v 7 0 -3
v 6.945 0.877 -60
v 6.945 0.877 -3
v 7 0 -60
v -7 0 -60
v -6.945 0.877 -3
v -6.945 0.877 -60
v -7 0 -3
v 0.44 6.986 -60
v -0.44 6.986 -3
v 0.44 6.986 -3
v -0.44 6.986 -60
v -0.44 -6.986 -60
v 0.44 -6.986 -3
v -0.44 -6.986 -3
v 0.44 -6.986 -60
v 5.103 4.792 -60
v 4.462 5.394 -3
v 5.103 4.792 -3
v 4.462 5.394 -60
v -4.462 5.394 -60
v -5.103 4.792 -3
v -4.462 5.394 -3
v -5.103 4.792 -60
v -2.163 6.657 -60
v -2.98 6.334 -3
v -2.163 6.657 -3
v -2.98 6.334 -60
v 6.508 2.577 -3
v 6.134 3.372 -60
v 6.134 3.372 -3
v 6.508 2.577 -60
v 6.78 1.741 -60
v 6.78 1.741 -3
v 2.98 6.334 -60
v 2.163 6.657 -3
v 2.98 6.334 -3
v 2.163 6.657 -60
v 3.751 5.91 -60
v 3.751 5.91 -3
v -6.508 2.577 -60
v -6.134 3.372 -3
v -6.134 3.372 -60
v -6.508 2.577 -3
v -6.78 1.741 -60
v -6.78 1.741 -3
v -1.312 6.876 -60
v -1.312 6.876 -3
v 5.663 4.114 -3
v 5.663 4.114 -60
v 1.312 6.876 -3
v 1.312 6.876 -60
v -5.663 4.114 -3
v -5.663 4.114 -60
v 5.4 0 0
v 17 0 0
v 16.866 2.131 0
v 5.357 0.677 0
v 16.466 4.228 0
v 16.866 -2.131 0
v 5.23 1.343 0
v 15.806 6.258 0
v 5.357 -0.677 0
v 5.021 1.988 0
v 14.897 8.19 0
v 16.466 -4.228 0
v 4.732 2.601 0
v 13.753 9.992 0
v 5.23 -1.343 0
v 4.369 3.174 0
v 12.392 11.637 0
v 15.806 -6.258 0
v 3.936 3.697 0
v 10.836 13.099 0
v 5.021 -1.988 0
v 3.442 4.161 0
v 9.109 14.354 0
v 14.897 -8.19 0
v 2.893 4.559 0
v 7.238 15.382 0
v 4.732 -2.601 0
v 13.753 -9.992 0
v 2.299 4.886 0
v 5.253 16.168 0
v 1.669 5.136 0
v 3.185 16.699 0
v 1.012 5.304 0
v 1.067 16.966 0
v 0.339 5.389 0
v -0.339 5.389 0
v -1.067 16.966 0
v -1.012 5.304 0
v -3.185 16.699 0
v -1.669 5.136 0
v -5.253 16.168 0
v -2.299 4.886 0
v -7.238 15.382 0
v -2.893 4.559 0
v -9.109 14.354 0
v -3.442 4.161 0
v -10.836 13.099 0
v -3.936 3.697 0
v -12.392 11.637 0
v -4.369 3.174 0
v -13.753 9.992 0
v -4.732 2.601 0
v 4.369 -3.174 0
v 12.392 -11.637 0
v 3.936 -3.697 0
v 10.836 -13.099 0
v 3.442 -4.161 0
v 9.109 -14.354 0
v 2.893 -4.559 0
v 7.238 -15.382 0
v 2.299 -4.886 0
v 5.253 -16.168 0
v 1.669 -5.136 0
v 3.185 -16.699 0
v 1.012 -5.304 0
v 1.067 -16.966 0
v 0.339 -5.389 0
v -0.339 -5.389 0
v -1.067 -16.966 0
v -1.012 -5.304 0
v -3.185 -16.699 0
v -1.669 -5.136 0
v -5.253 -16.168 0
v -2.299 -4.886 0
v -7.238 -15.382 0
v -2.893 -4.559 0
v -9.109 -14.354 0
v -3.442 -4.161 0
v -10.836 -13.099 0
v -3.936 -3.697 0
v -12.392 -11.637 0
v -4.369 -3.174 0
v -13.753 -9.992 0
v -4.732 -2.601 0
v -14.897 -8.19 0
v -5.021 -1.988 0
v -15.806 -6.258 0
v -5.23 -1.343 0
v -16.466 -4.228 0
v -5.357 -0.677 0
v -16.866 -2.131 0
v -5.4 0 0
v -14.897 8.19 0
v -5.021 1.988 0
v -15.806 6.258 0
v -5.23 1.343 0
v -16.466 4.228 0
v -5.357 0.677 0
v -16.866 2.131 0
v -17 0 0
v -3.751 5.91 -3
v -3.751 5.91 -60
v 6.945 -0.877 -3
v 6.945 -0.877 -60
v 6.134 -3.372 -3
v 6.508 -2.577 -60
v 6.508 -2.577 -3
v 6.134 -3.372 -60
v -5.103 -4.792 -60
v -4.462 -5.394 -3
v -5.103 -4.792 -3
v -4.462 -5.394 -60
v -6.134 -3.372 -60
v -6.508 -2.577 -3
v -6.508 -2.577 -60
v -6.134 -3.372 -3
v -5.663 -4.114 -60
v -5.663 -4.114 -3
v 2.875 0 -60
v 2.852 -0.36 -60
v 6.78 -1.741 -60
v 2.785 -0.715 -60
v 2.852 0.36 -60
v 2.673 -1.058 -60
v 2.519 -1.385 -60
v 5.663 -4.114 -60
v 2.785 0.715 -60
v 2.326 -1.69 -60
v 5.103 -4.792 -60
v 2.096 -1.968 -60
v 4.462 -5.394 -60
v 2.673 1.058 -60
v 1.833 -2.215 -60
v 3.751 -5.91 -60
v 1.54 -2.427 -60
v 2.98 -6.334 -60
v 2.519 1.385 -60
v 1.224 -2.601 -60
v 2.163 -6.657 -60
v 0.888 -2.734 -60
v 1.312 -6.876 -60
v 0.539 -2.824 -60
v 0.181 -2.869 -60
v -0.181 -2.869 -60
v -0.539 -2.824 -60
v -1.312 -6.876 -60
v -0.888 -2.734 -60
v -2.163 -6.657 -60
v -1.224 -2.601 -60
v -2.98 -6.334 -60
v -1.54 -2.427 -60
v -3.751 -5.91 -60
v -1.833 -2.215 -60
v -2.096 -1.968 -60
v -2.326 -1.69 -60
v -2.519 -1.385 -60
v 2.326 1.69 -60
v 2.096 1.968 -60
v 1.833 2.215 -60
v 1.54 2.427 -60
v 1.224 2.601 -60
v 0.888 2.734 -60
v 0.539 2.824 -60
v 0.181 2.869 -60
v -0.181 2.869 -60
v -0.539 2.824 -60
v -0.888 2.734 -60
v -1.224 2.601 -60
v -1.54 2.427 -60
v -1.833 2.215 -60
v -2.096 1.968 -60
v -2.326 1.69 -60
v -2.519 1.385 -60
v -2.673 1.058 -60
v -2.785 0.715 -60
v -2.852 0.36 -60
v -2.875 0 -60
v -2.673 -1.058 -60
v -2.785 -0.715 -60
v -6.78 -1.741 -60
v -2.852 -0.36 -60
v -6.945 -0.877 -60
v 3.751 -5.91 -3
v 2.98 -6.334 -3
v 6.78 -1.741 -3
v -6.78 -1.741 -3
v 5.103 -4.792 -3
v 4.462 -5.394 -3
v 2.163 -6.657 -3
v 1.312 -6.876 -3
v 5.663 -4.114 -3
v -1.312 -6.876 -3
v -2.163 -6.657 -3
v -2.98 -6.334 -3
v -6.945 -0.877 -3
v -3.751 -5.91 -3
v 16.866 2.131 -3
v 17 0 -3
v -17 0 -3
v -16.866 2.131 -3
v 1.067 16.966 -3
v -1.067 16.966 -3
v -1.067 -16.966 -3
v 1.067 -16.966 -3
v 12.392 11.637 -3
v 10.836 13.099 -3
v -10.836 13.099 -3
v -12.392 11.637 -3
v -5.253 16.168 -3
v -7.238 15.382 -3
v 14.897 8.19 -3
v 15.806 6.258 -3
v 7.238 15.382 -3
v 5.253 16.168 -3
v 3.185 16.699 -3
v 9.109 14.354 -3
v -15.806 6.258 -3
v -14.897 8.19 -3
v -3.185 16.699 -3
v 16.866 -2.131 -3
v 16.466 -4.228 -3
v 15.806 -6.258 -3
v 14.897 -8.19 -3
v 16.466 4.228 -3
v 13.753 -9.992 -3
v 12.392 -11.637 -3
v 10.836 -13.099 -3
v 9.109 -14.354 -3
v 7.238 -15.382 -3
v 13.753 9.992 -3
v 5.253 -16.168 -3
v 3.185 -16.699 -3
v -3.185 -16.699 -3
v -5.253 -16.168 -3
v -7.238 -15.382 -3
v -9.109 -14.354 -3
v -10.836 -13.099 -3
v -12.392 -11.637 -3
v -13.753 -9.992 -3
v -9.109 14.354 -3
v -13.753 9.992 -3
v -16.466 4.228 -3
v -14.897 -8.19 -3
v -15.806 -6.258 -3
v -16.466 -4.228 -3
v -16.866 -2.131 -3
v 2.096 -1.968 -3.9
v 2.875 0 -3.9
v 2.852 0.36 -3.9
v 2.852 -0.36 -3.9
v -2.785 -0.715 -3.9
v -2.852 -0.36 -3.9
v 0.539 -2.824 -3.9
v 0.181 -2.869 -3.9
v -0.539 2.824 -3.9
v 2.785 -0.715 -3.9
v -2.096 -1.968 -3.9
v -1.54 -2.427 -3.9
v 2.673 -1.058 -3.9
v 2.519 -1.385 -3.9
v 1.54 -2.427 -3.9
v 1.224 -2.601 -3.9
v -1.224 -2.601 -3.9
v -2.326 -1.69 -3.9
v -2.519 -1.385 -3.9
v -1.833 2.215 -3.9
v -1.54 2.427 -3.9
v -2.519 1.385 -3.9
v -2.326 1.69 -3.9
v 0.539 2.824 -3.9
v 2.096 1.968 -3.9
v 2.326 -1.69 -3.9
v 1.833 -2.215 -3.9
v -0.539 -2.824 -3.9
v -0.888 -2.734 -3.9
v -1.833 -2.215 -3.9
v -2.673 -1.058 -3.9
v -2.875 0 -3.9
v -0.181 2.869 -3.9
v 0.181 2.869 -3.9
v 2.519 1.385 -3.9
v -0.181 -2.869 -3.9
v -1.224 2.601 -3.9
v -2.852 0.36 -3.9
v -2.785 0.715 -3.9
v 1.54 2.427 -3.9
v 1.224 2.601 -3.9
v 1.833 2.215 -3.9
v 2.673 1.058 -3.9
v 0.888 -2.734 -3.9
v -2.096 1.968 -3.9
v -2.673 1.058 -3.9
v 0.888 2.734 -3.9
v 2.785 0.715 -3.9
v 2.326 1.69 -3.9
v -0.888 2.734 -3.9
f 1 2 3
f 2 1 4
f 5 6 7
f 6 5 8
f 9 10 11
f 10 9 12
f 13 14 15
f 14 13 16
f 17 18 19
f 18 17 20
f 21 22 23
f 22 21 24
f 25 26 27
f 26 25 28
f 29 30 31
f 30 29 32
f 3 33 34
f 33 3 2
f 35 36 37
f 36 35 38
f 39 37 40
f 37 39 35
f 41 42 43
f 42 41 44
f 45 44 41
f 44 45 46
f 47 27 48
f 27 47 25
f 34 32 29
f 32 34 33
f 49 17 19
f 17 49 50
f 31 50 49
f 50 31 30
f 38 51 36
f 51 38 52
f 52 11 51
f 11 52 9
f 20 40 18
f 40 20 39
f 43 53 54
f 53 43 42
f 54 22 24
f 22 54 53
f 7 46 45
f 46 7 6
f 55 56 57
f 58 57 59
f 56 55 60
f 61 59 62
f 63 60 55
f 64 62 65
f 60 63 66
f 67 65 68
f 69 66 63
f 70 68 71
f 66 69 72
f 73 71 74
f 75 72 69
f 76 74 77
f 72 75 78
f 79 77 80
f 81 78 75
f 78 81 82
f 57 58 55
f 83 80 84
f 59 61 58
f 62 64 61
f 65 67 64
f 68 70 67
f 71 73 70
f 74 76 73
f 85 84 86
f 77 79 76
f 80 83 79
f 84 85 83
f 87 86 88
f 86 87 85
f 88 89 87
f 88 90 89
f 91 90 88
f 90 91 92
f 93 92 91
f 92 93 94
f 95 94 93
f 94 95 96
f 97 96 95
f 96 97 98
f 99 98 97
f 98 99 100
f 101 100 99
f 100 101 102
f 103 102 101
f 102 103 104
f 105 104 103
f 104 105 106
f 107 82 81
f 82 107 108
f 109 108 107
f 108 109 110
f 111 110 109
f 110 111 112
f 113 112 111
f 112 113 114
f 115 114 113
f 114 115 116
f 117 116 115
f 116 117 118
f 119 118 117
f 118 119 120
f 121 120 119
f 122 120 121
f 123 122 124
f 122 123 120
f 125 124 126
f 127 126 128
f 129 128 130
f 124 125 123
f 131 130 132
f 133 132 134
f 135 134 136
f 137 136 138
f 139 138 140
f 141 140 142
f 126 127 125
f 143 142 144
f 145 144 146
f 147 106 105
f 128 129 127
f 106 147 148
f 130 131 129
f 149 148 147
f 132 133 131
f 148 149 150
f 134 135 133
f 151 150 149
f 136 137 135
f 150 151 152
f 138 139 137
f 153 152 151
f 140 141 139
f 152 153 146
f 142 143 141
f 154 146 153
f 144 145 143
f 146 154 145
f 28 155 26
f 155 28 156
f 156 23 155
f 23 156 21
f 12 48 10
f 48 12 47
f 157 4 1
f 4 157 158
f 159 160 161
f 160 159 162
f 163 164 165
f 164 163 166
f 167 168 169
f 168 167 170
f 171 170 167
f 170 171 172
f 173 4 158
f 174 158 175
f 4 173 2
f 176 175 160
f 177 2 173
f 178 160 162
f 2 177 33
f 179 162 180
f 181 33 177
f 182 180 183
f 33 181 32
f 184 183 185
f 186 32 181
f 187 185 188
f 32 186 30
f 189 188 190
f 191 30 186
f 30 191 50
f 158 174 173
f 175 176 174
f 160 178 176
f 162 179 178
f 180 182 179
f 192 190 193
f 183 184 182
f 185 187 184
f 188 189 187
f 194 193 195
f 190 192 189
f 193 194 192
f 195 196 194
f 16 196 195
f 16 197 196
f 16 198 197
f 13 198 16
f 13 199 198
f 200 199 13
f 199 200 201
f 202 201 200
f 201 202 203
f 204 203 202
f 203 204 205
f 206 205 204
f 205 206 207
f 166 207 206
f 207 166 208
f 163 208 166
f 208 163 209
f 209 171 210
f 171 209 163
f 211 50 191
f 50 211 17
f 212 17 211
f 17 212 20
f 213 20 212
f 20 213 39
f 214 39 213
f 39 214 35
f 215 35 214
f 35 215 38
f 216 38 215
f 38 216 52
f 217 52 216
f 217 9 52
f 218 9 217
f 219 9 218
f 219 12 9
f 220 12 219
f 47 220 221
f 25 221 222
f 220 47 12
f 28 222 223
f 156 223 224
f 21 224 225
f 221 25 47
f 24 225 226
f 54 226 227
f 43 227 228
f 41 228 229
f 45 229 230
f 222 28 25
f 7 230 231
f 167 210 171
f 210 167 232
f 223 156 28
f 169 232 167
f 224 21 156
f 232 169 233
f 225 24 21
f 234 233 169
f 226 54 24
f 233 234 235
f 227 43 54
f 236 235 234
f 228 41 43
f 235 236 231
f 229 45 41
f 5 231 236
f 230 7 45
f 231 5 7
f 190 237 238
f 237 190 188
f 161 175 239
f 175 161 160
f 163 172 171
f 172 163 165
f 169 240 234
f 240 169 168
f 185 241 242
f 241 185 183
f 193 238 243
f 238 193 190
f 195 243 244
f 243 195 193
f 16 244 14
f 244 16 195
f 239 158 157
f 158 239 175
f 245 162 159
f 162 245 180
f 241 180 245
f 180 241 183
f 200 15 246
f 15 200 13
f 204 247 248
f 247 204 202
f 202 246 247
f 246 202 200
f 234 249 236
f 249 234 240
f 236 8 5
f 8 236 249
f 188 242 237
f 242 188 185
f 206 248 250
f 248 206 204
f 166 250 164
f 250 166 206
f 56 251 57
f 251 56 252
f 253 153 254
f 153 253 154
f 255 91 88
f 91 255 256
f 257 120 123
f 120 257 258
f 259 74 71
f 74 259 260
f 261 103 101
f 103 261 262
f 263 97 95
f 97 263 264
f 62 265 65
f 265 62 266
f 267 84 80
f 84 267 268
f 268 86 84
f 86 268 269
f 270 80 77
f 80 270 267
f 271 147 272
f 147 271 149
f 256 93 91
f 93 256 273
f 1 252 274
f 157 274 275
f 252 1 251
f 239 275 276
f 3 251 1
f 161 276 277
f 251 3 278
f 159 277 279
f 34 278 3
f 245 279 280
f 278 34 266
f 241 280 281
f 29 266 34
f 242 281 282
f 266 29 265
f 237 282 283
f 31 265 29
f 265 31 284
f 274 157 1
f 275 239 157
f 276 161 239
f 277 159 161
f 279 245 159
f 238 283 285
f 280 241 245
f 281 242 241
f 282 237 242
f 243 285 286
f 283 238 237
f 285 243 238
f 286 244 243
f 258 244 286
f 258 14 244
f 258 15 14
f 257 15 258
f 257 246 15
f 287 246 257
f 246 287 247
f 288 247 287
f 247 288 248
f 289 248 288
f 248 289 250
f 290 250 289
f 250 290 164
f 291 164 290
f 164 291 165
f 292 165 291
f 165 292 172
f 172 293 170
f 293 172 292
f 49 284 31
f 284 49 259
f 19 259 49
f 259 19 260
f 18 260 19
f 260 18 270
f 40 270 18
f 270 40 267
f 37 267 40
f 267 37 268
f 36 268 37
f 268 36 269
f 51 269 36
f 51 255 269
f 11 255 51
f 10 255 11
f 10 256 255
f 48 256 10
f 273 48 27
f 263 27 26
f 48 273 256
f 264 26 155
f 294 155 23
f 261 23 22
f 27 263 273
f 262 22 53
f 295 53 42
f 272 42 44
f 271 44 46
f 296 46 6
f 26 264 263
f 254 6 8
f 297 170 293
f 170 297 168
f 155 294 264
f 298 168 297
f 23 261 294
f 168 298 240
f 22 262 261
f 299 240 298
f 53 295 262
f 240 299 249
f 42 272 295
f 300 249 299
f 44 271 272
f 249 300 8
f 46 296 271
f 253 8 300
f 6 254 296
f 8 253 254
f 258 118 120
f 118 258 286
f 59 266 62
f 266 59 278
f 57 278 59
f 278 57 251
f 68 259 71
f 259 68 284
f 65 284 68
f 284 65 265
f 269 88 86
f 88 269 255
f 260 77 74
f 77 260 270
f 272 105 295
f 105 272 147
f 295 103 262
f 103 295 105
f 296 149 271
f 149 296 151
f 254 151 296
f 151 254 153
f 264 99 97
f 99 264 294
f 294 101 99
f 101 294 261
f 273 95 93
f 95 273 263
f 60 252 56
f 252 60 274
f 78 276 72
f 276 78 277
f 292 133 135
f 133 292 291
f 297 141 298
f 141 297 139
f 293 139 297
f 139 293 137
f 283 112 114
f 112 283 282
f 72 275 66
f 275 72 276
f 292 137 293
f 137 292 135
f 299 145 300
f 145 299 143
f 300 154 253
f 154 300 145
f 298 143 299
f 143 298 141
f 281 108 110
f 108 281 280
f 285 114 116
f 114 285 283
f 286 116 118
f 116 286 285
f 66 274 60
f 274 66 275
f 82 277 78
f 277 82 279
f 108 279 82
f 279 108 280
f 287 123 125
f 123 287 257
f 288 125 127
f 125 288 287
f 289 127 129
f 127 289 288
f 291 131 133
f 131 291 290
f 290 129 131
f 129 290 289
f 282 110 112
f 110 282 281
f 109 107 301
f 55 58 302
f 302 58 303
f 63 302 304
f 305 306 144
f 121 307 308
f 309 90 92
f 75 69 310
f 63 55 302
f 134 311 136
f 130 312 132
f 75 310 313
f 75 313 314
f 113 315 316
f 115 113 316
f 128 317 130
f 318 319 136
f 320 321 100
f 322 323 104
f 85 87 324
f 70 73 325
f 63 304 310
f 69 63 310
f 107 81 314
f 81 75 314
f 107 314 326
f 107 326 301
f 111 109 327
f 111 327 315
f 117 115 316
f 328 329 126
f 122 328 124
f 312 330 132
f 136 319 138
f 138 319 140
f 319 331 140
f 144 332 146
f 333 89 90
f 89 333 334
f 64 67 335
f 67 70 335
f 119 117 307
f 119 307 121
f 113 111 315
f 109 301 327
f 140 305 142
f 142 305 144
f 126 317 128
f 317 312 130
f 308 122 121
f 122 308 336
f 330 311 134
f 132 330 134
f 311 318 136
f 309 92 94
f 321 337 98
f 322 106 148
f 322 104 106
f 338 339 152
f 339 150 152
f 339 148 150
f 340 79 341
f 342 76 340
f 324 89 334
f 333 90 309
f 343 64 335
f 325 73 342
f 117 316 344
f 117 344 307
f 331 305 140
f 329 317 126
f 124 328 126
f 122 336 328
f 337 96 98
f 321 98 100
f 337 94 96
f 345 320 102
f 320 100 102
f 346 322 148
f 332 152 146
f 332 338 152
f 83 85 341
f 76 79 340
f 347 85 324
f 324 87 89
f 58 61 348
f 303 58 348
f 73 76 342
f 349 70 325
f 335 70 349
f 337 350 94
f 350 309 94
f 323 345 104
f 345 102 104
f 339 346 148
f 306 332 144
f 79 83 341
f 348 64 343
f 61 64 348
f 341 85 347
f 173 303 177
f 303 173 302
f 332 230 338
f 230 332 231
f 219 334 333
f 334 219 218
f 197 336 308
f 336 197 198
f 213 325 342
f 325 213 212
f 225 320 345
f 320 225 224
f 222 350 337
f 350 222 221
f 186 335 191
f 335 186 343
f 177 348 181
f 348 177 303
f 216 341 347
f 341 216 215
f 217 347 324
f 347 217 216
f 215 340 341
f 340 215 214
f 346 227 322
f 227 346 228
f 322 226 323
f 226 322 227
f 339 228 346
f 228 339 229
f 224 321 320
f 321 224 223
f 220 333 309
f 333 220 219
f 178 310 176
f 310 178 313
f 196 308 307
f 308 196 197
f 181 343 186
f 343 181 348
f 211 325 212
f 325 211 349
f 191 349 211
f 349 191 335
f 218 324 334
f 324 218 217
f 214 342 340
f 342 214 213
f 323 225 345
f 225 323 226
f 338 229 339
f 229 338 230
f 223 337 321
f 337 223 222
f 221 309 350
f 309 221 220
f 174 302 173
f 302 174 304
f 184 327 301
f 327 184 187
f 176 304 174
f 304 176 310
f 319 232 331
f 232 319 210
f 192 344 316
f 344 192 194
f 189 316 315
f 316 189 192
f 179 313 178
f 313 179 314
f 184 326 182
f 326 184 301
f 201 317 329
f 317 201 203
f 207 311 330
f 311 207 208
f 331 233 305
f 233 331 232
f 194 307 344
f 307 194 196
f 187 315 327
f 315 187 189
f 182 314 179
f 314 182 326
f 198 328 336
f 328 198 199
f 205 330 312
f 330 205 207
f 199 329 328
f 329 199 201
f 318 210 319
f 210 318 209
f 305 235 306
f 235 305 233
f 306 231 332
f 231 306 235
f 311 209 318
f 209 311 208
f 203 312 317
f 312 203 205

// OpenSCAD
$fn = 50;


difference() {
	union() {
		translate(v = [0, 0, -60.0000000000]) {
			cylinder(h = 60, r = 7.0000000000);
		}
		translate(v = [0, 0, -3.0000000000]) {
			cylinder(h = 3, r = 17.0000000000);
		}
	}
	union() {
		translate(v = [0, 0, 0]) {
			rotate(a = [0, 0, 0]) {
				difference() {
					union() {
						#translate(v = [0, 0, -60.0000000000]) {
							cylinder(h = 60, r = 2.6000000000);
						}
						#translate(v = [0, 0, -3.9000000000]) {
							cylinder(h = 3.9000000000, r = 7.0000000000, r1 = 2.8750000000, r2 = 5.4000000000);
						}
						#translate(v = [0, 0, -60.0000000000]) {
							cylinder(h = 60, r = 2.8750000000);
						}
						#translate(v = [0, 0, -60.0000000000]) {
							cylinder(h = 60, r = 2.6000000000);
						}
					}
					union();
				}
			}
		}
	}
}
